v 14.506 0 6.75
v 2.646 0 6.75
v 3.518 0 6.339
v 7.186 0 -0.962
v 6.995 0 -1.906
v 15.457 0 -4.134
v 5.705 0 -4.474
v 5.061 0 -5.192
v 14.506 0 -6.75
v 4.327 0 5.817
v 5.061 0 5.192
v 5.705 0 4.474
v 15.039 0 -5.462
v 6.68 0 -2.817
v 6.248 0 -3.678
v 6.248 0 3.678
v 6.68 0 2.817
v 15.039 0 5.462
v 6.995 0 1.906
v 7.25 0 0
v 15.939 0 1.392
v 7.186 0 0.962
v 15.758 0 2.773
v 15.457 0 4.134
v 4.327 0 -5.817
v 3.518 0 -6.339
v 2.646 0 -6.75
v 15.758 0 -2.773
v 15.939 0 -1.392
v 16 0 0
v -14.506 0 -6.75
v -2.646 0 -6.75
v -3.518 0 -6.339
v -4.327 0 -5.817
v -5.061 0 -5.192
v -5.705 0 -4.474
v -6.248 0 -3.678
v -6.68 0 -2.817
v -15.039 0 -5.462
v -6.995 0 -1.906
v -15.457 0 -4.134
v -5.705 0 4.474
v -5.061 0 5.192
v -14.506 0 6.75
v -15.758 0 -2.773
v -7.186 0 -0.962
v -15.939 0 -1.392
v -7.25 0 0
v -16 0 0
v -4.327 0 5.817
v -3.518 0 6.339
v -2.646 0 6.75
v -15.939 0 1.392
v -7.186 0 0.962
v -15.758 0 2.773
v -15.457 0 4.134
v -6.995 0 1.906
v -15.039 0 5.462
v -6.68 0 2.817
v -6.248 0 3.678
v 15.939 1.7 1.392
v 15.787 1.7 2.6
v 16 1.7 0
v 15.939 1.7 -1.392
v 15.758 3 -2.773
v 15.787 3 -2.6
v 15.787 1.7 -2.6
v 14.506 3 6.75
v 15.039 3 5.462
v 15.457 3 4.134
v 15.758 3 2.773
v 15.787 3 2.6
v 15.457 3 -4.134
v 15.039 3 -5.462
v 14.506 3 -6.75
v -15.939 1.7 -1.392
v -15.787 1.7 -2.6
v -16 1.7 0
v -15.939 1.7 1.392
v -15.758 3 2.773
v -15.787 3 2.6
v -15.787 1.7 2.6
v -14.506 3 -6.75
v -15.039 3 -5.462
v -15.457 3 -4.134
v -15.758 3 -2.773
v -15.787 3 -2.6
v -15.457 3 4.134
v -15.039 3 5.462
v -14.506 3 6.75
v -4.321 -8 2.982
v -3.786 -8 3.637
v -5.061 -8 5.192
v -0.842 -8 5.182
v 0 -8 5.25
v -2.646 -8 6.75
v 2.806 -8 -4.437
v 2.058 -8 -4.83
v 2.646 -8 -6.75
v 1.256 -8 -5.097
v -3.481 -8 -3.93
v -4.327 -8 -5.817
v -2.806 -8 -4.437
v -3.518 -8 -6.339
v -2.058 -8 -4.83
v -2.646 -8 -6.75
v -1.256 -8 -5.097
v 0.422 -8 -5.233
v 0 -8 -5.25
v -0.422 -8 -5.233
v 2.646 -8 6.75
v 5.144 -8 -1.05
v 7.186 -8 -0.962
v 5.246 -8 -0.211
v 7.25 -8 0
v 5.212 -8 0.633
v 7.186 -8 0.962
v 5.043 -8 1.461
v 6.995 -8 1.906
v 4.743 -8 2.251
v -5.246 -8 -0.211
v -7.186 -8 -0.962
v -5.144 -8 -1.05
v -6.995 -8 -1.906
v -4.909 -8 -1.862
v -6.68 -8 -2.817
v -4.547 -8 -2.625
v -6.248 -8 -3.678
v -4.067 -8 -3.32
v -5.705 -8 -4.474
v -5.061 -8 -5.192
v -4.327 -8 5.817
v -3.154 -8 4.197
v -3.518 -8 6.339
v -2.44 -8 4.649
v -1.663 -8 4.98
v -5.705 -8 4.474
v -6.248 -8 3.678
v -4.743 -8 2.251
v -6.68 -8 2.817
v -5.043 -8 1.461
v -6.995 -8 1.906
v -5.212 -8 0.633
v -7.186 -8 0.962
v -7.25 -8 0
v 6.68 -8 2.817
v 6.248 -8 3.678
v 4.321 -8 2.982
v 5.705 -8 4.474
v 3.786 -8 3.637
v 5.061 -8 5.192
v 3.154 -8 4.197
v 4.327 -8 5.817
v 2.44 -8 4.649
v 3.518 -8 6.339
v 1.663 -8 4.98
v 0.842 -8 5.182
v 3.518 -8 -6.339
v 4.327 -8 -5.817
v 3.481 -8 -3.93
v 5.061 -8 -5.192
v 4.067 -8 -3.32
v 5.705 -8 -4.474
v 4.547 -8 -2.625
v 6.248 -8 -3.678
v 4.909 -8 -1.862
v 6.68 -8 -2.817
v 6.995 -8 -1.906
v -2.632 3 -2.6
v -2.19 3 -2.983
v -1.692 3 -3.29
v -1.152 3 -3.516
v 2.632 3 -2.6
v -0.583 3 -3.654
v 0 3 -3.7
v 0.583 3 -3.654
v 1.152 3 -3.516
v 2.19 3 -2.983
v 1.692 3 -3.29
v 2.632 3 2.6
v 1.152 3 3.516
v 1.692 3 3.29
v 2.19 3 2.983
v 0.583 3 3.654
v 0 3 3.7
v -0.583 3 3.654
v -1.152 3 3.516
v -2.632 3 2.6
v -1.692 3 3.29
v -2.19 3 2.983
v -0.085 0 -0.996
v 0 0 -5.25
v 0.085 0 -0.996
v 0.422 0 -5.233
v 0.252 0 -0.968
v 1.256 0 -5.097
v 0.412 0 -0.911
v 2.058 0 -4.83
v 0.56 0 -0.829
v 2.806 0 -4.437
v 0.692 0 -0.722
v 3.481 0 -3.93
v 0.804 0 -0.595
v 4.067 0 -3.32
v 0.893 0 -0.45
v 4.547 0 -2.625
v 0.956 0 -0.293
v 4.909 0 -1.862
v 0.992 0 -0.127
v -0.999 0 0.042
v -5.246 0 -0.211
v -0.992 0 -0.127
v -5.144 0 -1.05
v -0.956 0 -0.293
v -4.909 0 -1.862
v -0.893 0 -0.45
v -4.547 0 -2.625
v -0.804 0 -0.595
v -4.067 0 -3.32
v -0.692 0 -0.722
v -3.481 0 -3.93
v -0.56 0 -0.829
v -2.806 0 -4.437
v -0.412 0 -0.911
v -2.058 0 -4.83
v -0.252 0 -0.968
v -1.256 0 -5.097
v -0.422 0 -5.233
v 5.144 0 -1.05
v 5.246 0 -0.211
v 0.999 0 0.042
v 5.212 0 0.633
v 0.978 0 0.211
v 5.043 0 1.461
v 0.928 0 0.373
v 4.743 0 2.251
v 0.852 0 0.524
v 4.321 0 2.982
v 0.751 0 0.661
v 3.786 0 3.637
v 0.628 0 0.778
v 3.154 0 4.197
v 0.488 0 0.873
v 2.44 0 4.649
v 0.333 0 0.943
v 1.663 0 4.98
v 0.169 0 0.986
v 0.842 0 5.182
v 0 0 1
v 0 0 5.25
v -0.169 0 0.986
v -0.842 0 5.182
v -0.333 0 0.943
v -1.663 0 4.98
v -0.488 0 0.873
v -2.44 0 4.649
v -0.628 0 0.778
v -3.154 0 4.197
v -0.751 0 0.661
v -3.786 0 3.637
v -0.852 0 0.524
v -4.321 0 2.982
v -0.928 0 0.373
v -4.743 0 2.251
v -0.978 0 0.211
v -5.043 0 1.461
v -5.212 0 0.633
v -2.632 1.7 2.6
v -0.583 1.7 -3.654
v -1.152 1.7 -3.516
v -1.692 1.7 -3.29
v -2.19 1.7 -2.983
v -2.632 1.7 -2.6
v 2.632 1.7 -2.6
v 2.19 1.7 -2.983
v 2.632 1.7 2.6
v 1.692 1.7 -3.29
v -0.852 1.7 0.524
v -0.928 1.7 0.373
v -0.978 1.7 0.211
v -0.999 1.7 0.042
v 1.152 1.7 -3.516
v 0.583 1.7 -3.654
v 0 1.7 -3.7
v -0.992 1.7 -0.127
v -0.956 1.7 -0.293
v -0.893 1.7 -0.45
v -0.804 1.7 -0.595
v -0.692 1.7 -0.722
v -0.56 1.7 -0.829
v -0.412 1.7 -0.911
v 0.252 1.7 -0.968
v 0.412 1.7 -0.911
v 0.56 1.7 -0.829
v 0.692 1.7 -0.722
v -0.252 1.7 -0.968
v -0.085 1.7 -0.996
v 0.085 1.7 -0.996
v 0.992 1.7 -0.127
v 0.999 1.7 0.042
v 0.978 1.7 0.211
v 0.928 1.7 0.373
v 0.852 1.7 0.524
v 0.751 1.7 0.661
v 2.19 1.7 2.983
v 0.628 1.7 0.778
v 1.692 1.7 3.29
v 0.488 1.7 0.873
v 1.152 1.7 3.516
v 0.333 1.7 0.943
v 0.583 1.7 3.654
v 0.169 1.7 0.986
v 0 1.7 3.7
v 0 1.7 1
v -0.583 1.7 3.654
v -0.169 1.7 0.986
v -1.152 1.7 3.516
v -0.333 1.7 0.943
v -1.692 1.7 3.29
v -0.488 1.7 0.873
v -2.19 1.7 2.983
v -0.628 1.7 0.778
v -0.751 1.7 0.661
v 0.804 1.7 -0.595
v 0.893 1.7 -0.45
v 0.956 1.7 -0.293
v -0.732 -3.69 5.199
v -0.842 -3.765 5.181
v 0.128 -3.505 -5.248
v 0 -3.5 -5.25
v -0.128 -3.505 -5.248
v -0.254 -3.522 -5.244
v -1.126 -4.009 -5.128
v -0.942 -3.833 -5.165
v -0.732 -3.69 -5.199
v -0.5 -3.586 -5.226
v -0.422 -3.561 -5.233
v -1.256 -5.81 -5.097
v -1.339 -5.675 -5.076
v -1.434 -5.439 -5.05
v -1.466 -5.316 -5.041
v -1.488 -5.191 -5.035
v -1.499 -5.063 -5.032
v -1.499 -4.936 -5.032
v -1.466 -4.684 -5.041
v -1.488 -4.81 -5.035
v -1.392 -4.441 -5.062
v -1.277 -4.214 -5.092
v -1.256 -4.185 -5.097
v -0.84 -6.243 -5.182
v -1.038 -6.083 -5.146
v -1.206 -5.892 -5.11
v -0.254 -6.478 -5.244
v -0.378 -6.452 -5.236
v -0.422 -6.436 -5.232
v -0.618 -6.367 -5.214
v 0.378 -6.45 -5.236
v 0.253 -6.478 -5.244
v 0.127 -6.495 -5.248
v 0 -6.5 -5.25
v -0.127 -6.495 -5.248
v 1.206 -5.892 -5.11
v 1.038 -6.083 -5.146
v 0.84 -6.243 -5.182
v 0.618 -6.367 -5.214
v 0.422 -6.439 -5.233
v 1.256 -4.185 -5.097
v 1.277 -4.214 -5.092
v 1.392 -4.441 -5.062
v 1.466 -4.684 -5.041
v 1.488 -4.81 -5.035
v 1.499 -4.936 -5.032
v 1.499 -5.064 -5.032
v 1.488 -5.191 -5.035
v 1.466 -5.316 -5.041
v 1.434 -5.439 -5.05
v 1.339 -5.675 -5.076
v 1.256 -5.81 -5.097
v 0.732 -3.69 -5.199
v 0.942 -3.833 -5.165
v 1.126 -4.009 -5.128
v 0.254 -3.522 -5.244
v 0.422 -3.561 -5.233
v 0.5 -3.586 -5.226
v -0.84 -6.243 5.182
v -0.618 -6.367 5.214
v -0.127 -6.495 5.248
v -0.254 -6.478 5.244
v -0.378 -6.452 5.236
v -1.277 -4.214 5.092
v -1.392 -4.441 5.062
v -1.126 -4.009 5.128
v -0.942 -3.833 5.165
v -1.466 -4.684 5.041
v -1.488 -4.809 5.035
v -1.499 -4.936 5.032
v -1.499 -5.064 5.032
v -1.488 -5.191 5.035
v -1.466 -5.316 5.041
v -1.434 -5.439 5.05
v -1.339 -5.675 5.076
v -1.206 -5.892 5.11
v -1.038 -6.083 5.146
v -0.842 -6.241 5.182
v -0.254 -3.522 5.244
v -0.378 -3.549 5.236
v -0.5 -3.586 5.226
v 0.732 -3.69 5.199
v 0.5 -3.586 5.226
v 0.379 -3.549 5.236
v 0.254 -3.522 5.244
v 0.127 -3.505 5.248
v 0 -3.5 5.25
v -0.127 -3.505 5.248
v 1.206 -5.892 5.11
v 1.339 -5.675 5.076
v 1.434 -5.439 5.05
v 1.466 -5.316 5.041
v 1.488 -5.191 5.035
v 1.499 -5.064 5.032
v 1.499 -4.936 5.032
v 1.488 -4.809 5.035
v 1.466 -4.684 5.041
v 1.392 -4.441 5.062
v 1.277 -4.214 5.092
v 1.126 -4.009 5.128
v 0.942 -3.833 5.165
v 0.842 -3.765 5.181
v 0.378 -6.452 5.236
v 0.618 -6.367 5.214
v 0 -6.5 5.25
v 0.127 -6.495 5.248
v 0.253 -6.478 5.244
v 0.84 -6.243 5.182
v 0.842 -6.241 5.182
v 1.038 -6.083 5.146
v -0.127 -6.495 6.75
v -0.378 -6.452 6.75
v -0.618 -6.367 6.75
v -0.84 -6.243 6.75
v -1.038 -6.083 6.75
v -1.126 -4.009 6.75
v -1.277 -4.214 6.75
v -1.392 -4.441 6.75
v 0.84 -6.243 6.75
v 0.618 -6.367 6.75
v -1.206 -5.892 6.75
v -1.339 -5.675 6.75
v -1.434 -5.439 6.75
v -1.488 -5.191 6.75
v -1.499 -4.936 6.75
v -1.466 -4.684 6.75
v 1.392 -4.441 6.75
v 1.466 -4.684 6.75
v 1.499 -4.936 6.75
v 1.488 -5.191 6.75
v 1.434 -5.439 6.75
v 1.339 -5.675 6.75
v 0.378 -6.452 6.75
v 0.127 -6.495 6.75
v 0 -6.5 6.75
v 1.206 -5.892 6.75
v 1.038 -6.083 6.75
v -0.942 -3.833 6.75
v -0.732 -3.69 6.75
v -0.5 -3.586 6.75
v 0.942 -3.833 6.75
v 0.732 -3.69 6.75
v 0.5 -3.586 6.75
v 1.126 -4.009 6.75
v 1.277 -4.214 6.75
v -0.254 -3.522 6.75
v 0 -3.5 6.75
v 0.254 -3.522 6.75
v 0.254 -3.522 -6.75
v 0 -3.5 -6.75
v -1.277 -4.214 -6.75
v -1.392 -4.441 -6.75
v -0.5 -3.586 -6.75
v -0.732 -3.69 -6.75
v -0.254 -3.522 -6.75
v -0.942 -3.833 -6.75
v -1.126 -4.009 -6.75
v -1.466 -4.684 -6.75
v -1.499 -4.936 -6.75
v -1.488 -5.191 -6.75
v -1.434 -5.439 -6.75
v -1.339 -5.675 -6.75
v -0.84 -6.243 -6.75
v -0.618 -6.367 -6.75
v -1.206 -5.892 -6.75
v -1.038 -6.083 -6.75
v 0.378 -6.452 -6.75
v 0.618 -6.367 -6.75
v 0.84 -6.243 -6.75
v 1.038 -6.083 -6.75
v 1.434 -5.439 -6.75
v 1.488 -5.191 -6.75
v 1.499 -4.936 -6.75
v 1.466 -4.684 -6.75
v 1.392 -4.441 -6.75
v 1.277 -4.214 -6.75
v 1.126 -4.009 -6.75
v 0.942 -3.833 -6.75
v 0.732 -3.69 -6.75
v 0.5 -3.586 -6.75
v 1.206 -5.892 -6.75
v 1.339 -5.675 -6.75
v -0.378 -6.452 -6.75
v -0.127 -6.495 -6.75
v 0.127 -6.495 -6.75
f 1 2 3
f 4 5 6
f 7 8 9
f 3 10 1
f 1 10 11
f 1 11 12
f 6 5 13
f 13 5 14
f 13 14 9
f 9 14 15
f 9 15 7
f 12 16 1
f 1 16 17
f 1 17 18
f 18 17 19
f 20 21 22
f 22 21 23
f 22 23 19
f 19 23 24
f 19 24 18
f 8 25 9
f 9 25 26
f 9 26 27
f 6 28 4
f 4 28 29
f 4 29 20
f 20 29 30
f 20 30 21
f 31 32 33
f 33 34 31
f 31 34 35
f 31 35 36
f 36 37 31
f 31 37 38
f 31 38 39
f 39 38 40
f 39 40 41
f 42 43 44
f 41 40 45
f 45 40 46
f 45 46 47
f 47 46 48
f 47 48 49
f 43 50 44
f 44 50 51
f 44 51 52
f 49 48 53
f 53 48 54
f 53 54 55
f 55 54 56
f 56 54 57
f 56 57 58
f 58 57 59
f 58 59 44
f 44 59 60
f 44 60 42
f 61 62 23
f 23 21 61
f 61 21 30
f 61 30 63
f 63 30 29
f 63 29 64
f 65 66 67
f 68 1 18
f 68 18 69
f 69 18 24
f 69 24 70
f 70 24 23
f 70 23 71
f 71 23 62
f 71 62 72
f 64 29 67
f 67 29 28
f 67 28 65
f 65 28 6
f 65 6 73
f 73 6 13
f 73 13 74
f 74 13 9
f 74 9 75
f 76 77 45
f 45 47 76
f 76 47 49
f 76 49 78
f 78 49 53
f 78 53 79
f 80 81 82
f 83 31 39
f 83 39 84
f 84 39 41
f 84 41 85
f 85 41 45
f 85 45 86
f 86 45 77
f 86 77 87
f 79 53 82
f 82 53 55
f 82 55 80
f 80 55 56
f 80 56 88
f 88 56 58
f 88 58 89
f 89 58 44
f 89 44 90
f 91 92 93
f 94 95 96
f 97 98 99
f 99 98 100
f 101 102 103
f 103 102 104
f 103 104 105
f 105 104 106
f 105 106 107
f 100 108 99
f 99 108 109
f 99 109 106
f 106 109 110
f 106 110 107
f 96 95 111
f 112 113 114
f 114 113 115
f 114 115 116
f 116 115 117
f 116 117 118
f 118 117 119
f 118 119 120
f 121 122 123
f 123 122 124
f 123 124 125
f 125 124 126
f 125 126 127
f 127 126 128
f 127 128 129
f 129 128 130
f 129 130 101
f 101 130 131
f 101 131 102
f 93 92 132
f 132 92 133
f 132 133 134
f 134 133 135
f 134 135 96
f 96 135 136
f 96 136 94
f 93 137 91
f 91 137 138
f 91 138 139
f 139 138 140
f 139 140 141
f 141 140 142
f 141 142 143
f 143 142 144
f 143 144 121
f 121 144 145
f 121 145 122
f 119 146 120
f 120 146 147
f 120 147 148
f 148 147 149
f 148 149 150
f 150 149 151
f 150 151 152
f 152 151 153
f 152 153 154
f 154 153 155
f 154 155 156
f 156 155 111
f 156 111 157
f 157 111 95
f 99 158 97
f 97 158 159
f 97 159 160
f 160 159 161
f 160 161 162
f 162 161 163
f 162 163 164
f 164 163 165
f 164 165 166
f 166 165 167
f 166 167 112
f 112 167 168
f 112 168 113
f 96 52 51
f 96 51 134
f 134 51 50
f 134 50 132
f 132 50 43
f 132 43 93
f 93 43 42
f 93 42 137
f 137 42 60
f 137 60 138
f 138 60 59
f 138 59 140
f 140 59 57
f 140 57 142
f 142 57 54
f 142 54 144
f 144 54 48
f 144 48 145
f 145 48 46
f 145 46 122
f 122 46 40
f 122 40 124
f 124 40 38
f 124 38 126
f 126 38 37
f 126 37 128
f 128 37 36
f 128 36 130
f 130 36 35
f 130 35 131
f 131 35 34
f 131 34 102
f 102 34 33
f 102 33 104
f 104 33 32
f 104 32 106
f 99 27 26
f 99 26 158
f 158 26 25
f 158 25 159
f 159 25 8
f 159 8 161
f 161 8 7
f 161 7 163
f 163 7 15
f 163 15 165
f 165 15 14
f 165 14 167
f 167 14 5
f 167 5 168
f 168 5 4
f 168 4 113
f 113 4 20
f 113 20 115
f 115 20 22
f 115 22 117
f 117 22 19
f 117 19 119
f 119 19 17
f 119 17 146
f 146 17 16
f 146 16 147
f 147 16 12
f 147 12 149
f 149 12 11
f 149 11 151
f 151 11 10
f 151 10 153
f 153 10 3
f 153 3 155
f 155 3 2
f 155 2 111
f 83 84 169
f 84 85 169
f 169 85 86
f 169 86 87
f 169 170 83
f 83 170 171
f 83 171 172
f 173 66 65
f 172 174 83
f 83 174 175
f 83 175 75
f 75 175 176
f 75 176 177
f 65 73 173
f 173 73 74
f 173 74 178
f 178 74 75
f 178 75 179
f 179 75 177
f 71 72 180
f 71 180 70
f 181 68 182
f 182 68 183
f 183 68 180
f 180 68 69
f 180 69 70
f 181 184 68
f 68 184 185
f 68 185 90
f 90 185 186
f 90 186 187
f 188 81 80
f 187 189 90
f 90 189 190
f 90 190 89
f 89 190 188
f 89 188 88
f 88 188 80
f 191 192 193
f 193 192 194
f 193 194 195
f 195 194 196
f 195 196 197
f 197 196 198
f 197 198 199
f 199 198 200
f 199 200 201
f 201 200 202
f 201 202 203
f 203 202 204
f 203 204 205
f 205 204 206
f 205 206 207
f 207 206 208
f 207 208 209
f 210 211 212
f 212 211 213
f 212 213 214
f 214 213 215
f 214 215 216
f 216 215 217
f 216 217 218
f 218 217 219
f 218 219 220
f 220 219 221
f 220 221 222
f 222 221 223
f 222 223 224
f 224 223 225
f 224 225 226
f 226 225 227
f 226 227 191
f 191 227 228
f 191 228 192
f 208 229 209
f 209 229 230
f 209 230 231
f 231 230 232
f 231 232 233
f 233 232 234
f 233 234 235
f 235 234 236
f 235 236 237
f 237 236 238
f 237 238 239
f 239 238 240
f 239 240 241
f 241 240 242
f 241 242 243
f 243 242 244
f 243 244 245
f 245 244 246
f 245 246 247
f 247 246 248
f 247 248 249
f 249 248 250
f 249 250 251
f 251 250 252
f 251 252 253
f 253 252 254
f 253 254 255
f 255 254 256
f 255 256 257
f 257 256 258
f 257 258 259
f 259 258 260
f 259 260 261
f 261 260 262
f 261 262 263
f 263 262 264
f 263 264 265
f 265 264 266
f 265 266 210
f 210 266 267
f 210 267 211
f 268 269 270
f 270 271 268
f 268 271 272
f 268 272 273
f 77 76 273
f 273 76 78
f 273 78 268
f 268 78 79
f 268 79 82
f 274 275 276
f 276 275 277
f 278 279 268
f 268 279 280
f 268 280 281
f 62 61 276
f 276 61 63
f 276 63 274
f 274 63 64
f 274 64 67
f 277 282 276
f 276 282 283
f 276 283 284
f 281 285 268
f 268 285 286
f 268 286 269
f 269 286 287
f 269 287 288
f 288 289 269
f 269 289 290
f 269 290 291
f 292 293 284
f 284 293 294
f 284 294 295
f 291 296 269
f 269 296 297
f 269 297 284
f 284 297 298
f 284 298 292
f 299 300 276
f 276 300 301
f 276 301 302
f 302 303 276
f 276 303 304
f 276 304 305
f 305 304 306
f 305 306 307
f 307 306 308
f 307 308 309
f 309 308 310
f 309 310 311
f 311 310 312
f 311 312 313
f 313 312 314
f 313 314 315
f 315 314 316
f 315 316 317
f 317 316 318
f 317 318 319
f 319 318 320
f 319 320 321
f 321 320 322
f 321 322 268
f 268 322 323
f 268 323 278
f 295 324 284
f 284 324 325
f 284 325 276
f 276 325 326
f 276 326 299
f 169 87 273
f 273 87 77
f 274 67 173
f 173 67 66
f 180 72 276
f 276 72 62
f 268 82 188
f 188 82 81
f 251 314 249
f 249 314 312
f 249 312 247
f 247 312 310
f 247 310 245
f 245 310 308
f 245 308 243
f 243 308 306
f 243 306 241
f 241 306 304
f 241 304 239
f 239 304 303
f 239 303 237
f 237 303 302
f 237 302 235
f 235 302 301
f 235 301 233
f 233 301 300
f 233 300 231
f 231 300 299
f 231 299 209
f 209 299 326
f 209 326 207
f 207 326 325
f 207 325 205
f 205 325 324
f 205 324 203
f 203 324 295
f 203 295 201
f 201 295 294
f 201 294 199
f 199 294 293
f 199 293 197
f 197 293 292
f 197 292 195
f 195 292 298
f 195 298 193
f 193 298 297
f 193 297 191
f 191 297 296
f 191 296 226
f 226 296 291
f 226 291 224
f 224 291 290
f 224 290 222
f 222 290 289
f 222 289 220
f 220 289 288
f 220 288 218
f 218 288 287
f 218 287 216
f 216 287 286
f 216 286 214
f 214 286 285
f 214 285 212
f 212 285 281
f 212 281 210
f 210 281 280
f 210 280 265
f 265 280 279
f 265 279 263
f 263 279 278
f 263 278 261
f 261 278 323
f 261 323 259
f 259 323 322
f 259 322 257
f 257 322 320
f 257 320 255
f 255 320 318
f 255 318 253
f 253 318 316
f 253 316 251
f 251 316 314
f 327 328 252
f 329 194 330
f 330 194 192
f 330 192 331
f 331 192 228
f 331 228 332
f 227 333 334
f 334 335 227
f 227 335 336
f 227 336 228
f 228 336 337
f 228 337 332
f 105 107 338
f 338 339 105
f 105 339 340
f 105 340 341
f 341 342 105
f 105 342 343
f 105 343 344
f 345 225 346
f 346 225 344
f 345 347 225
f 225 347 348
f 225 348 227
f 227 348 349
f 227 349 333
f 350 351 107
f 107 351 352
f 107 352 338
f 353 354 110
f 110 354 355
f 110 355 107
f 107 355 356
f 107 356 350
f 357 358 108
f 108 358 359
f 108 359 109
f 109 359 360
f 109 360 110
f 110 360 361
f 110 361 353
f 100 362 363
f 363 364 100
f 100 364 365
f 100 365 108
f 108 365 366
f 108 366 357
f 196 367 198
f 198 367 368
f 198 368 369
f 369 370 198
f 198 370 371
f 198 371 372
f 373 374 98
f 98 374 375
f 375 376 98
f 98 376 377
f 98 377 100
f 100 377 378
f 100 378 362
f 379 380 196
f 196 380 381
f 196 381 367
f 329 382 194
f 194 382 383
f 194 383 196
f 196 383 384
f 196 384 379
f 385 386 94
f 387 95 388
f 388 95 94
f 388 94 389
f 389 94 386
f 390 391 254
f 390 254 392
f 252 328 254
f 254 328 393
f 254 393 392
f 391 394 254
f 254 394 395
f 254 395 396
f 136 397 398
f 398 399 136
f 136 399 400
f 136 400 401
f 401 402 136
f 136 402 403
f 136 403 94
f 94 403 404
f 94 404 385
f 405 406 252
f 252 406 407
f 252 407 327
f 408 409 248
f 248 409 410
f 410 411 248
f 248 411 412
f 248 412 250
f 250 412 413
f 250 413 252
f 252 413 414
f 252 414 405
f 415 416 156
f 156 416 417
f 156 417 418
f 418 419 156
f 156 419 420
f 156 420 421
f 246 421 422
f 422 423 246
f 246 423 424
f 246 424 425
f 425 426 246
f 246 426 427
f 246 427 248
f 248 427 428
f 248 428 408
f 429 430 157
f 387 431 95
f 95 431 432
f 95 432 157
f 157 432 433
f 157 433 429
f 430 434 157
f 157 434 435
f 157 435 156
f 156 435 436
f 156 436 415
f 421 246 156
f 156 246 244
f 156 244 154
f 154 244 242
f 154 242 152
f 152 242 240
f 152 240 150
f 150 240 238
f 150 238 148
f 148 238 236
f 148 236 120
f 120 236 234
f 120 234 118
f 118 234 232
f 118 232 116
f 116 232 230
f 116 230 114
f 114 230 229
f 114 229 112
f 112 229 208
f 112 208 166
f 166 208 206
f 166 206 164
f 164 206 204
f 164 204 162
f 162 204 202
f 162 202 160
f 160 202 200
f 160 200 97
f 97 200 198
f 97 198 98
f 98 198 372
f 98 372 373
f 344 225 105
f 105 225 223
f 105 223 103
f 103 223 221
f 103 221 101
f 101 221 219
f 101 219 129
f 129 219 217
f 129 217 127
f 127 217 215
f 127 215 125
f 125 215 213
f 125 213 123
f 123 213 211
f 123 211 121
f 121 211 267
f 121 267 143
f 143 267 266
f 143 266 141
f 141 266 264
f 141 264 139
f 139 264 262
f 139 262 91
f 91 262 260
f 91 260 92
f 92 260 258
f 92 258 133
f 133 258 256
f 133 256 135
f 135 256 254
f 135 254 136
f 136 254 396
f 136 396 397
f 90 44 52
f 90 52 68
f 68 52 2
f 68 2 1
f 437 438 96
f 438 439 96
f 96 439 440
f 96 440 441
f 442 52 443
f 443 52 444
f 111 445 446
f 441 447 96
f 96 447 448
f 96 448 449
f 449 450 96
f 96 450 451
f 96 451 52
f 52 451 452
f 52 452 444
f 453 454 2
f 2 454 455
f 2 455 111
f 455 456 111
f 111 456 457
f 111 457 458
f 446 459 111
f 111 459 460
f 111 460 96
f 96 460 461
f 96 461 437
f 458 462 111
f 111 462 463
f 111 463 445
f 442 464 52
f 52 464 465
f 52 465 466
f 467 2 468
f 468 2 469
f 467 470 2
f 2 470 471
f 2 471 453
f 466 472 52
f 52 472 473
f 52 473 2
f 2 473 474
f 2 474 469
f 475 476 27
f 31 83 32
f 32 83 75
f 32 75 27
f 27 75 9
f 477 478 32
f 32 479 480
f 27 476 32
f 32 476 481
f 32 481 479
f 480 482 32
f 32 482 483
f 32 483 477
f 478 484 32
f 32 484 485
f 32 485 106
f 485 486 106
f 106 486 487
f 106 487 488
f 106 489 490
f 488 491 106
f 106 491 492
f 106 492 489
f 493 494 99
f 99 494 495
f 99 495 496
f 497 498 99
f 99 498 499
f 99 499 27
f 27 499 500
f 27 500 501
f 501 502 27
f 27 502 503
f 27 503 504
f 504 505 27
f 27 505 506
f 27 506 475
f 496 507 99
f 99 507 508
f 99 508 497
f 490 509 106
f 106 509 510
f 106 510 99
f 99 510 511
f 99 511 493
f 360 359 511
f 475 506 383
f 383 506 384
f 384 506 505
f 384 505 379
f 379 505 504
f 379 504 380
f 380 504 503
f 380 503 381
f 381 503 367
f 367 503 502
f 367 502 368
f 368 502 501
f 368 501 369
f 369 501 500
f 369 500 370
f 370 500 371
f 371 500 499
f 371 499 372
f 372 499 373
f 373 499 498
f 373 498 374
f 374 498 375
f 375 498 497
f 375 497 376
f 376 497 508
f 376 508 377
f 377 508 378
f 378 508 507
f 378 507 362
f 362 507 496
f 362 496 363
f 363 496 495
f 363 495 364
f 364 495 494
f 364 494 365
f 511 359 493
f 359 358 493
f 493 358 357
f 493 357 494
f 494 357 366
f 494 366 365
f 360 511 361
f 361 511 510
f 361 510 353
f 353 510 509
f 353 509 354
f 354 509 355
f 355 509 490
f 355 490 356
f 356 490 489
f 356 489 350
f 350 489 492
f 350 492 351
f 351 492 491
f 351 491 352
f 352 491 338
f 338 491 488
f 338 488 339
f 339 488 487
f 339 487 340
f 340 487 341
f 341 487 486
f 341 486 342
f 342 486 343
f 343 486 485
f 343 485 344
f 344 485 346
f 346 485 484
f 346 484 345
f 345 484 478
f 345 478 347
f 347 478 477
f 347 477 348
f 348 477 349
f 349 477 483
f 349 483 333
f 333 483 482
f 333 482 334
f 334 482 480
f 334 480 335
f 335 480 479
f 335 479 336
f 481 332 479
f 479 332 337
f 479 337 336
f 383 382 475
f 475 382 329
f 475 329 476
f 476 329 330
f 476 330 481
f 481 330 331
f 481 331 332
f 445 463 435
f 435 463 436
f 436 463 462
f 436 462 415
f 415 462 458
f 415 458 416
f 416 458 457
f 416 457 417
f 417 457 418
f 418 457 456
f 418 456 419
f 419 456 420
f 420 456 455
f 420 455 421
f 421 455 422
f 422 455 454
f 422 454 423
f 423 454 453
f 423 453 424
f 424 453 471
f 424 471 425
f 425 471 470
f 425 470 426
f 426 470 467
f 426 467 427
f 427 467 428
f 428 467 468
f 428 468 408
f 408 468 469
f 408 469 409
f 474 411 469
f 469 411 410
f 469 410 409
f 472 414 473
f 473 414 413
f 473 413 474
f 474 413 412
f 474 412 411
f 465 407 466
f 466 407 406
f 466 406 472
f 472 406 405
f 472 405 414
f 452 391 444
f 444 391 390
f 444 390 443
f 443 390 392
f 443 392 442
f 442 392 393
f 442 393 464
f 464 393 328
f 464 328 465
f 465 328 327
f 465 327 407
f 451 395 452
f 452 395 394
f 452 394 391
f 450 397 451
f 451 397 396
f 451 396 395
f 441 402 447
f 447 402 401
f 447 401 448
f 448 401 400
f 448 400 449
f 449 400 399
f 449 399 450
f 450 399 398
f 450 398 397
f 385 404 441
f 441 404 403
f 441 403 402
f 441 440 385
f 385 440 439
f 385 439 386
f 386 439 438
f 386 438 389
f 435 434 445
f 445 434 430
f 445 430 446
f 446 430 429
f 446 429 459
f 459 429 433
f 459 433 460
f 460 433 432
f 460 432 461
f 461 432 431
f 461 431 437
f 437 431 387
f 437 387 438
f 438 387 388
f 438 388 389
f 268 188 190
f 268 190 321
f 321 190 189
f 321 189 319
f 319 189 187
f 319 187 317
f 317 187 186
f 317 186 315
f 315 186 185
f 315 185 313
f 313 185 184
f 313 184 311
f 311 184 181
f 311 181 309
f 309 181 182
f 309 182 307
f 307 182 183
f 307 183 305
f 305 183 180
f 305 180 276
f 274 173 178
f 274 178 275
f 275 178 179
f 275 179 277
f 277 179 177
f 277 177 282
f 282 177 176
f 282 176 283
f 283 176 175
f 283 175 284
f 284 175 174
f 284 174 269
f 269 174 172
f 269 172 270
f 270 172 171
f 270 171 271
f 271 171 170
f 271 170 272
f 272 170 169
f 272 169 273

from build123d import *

# Parameters (mm, degrees)
SKETCH1_R               = 16
BOSS_EXTRUDE1_DEPTH     = 3
CUT_EXTRUDE1_START      = -1.3
CUT_EXTRUDE1_DEPTH      = 1.3
CUT_EXTRUDE3_DEPTH      = 2
CUT_EXTRUDE3_DEPTH_BACK = 2
SKETCH4_R               = 1
SKETCH5_R               = 7.25
SKETCH5_R_2             = 5.25
EXTRUDE_THIN1_DEPTH     = 8
CUT_EXTRUDE4_DEPTH      = 100
CUT_EXTRUDE4_DEPTH_BACK = 100
SKETCH6_W               = 10.574311585
SKETCH6_H               = 20.455042326
SKETCH6_W_2             = 9.477353479
SKETCH6_H_2             = 21.35841959
SKETCH7_R               = 1.5
CUT_EXTRUDE5_DEPTH      = 30
SKETCH8_R               = 3.7
CUT_EXTRUDE6_DEPTH      = 1.3


with BuildPart() as part:
    # Sketch1 → Boss-Extrude1 (new body)
    with BuildSketch(Plane(origin=(0, 0, 0), x_dir=(1, 0, 0), z_dir=(0, 1, 0))):
        Circle(SKETCH1_R)
    extrude(amount=BOSS_EXTRUDE1_DEPTH)

    # Sketch2 → Cut-Extrude1 (cut)
    with BuildSketch(Plane(origin=(0, 3, 0), x_dir=(1, 0, 0), z_dir=(0, 1, 0)).offset(CUT_EXTRUDE1_START)):
        with BuildLine():
            Line((-15.787336697, 2.6), (-2.343074903, 2.6))
            ThreePointArc((-2.343074903, 2.6), (0, 3.5), (2.343074903, 2.6))
            Line((2.343074903, 2.6), (15.787336697, 2.6))
            ThreePointArc((15.787336697, 2.6), (16, 0), (15.787336697, -2.6))
            Line((15.787336697, -2.6), (2.343074903, -2.6))
            ThreePointArc((2.343074903, -2.6), (0, -3.5), (-2.343074903, -2.6))
            Line((-2.343074903, -2.6), (-15.787336697, -2.6))
            ThreePointArc((-15.787336697, -2.6), (-16, 0), (-15.787336697, 2.6))
        make_face()
    extrude(amount=CUT_EXTRUDE1_DEPTH, mode=Mode.SUBTRACT)

    # Sketch4 → Cut-Extrude3 (cut, two sides: drawn at the far end of the back side and taken through both)
    with BuildSketch(Plane.XZ.offset(-0.3).offset(-CUT_EXTRUDE3_DEPTH_BACK)):
        Circle(SKETCH4_R)
    extrude(amount=CUT_EXTRUDE3_DEPTH + CUT_EXTRUDE3_DEPTH_BACK, mode=Mode.SUBTRACT)

    # Sketch5 → Extrude-Thin1 (add)
    with BuildSketch(Plane.XZ):
        Circle(SKETCH5_R)
        Circle(SKETCH5_R_2, mode=Mode.SUBTRACT)
    extrude(amount=EXTRUDE_THIN1_DEPTH)

    # Sketch6 → Cut-Extrude4 (cut, two sides: drawn at the far end of the back side and taken through both)
    with BuildSketch(Plane(origin=(0, 0, 0), x_dir=(0, 0, -1), z_dir=(1, 0, 0)).offset(-CUT_EXTRUDE4_DEPTH_BACK)):
        with Locations((-12.037155793, -3.839018001)):
            Rectangle(SKETCH6_W, SKETCH6_H)
        with Locations((11.48867674, -4.290706633)):
            Rectangle(SKETCH6_W_2, SKETCH6_H_2)
    extrude(amount=CUT_EXTRUDE4_DEPTH + CUT_EXTRUDE4_DEPTH_BACK, mode=Mode.SUBTRACT)

    # Sketch7 → Cut-Extrude5 (cut)
    with BuildSketch(Plane(origin=(0, 0, -6.75), x_dir=(-1, 0, 0), z_dir=(0, 0, -1))):
        with Locations((0, -5)):
            Circle(SKETCH7_R)
    extrude(amount=-CUT_EXTRUDE5_DEPTH, mode=Mode.SUBTRACT)

    # Sketch8 → Cut-Extrude6 (cut)
    with BuildSketch(Plane(origin=(0, 3, 0), x_dir=(1, 0, 0), z_dir=(0, 1, 0))):
        Circle(SKETCH8_R)
    extrude(amount=-CUT_EXTRUDE6_DEPTH, mode=Mode.SUBTRACT)


solid = part.part
